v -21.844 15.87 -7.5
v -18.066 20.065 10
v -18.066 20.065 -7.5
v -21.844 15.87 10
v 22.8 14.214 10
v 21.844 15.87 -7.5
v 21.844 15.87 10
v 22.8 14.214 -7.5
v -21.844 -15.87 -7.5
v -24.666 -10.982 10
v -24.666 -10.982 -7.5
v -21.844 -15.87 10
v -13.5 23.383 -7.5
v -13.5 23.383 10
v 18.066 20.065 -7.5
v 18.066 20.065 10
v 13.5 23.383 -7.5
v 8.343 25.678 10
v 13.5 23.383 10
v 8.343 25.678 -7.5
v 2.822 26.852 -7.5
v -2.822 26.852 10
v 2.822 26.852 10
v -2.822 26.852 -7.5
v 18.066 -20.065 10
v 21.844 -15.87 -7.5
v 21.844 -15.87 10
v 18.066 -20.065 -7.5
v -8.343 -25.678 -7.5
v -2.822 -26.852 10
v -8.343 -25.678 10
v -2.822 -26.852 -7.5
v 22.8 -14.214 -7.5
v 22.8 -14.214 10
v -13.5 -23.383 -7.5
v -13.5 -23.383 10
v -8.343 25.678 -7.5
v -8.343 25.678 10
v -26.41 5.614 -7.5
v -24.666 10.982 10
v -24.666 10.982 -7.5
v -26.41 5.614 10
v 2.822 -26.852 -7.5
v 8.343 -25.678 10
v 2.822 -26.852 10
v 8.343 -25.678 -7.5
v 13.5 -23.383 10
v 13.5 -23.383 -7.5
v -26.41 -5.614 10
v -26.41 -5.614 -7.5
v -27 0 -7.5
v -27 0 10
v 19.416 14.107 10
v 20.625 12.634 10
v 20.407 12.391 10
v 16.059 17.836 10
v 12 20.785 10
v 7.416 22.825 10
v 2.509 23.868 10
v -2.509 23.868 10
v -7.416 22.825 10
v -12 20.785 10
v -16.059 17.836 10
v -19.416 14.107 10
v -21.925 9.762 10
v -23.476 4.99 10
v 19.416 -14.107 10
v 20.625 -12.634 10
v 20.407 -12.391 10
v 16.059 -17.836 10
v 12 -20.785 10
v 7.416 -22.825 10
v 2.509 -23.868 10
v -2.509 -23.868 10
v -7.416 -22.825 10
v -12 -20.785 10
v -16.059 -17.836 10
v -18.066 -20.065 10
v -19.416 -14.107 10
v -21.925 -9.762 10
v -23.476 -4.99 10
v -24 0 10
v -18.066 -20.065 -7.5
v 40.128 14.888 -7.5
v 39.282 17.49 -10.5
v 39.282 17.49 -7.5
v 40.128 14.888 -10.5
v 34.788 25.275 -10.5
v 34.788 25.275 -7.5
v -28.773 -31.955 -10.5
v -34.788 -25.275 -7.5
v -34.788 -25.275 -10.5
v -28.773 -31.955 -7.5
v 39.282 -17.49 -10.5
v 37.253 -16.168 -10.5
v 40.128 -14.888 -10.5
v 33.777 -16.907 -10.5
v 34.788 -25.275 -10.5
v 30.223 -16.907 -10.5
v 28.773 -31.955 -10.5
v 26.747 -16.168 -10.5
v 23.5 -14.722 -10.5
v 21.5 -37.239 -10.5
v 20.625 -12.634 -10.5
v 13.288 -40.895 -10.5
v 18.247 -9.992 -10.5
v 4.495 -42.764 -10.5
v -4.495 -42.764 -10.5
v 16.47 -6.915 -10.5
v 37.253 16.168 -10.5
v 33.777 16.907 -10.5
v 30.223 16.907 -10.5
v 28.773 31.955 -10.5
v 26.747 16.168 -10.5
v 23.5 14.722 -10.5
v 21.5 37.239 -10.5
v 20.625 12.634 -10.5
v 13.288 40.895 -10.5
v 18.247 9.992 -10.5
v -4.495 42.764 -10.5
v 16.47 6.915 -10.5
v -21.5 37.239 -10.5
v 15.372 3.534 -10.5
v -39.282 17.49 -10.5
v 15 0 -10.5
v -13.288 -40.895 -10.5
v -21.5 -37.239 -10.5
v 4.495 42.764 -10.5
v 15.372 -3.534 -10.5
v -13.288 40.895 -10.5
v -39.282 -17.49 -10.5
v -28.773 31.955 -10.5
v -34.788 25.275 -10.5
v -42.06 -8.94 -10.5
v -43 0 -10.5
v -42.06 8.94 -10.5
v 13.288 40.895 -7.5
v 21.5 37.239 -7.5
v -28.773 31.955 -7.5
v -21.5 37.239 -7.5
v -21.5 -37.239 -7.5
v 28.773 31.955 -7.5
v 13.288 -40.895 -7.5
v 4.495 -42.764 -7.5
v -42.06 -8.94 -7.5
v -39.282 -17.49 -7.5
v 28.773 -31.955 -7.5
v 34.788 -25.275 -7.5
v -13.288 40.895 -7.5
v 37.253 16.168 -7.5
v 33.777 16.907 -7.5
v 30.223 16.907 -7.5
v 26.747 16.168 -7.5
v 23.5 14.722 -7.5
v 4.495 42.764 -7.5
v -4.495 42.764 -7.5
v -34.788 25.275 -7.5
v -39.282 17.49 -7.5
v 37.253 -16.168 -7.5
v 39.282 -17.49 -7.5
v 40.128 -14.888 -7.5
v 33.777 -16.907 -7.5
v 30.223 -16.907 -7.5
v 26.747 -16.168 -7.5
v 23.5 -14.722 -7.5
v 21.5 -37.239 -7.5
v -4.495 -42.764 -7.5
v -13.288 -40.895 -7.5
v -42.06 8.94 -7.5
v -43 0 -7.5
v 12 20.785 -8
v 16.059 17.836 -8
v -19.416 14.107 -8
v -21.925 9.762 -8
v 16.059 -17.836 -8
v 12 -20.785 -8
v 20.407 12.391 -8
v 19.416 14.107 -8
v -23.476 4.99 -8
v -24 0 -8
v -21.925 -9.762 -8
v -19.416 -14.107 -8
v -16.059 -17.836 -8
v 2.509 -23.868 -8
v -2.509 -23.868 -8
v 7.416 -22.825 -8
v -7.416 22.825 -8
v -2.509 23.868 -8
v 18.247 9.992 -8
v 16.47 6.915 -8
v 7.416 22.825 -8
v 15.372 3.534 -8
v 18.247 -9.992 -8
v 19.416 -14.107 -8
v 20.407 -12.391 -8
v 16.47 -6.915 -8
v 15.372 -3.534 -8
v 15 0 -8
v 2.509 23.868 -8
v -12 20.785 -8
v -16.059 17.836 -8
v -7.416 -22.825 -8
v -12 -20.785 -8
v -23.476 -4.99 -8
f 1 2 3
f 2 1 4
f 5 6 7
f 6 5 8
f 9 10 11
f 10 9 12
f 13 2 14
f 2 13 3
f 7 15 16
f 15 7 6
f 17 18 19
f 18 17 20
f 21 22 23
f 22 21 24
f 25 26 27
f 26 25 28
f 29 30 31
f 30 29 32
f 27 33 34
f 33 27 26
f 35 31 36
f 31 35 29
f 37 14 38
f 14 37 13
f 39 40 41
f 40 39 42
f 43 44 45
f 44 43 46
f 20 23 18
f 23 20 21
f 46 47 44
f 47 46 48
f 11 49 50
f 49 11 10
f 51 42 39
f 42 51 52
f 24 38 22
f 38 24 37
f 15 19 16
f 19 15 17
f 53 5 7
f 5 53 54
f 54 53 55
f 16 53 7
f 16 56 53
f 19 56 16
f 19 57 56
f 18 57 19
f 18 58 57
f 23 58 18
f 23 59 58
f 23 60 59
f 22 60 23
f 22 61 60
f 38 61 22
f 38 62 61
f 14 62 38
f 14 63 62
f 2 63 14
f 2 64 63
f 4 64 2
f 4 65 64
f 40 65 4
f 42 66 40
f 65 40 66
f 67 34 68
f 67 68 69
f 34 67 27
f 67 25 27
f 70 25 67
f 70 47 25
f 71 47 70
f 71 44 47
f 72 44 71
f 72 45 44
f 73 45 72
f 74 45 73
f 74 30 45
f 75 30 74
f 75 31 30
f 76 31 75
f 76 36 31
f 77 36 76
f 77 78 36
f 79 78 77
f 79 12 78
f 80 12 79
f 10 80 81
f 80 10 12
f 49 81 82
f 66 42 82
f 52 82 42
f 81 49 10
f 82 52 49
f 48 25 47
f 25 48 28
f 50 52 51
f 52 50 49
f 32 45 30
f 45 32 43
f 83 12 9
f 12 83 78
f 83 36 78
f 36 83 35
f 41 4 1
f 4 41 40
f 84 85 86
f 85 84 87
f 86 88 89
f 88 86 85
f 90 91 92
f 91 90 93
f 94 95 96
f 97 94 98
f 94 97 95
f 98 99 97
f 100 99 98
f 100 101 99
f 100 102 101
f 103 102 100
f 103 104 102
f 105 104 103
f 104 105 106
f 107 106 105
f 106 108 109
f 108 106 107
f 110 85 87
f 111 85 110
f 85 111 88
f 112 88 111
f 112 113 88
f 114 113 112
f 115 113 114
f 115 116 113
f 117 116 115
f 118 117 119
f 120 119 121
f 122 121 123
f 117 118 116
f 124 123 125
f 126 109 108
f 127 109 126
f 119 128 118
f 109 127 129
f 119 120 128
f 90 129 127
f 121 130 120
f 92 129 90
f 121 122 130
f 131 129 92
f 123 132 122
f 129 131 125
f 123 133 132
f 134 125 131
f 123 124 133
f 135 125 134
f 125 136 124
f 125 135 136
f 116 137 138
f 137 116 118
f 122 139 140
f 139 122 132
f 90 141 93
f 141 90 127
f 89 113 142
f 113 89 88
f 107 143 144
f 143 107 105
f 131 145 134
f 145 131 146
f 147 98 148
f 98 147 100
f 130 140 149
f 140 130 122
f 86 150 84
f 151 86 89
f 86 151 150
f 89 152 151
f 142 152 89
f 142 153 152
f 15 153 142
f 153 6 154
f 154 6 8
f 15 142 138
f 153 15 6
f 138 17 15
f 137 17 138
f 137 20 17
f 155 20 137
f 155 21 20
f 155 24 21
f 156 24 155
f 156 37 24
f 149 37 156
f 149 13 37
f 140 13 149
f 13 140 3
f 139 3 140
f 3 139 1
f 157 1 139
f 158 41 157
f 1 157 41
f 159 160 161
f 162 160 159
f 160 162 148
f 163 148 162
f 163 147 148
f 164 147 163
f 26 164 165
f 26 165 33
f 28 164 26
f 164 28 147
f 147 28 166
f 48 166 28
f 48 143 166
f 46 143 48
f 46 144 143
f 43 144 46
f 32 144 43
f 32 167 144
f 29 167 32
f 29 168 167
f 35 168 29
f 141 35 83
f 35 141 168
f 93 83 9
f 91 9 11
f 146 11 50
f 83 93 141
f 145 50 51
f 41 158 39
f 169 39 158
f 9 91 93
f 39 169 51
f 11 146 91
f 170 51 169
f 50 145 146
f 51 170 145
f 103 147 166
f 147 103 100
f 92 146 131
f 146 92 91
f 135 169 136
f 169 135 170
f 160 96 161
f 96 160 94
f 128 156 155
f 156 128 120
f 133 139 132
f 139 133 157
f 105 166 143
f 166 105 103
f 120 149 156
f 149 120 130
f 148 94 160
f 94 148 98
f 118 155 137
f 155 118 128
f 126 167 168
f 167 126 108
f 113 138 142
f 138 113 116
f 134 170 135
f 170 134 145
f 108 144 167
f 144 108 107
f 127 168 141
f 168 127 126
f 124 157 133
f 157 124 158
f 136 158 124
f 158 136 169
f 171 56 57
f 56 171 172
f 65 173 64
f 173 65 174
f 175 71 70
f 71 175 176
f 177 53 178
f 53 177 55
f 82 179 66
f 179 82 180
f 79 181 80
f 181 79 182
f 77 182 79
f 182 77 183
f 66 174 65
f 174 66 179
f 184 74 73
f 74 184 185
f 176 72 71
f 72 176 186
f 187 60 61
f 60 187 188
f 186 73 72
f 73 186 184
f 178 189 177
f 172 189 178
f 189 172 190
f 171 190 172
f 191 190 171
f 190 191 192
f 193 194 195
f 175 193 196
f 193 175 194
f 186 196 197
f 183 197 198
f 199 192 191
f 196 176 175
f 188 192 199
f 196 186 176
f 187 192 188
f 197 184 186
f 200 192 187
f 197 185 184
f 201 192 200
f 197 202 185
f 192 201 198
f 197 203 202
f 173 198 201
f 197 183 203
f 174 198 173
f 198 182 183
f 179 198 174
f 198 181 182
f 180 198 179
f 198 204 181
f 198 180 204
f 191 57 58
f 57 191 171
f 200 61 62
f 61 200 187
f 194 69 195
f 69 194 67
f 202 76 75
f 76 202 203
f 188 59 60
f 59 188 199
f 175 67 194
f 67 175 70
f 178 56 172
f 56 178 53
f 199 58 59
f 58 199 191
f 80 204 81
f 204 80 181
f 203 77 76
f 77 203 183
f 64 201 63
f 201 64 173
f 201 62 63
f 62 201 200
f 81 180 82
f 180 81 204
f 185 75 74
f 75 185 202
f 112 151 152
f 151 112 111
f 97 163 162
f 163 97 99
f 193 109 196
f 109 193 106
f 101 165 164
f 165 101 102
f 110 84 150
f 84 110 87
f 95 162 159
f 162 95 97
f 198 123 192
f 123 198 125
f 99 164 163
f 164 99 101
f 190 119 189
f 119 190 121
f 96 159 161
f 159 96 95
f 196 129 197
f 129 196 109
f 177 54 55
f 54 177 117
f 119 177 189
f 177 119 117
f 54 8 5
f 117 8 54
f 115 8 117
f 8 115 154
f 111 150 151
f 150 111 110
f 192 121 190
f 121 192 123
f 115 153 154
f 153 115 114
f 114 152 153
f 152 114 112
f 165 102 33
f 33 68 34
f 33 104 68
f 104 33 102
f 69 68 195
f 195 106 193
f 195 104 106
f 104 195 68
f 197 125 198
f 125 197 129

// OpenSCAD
DIAMETER=62;
DEPTH=10;
OFFSET=3;

difference() {
  union() {
    // Insert
    cylinder(r=(DIAMETER / 2) - 4, h=DEPTH * 2, center=true);

    // Top cover
    translate([0, 0, -(DEPTH / 2) -4])
      cylinder(r=(DIAMETER / 2) + 12, h=OFFSET, center=true);
  }

  // Cutout trench
  translate([0, 0, 2])
  #cylinder(r=(DIAMETER / 2) - 4 - OFFSET, h=DEPTH * 2, center=true);

  // Cable hole
  translate([DIAMETER - 30, 0 ,0])
  #cylinder(r=20 - OFFSET, h=DEPTH * 3, center=true);
}
